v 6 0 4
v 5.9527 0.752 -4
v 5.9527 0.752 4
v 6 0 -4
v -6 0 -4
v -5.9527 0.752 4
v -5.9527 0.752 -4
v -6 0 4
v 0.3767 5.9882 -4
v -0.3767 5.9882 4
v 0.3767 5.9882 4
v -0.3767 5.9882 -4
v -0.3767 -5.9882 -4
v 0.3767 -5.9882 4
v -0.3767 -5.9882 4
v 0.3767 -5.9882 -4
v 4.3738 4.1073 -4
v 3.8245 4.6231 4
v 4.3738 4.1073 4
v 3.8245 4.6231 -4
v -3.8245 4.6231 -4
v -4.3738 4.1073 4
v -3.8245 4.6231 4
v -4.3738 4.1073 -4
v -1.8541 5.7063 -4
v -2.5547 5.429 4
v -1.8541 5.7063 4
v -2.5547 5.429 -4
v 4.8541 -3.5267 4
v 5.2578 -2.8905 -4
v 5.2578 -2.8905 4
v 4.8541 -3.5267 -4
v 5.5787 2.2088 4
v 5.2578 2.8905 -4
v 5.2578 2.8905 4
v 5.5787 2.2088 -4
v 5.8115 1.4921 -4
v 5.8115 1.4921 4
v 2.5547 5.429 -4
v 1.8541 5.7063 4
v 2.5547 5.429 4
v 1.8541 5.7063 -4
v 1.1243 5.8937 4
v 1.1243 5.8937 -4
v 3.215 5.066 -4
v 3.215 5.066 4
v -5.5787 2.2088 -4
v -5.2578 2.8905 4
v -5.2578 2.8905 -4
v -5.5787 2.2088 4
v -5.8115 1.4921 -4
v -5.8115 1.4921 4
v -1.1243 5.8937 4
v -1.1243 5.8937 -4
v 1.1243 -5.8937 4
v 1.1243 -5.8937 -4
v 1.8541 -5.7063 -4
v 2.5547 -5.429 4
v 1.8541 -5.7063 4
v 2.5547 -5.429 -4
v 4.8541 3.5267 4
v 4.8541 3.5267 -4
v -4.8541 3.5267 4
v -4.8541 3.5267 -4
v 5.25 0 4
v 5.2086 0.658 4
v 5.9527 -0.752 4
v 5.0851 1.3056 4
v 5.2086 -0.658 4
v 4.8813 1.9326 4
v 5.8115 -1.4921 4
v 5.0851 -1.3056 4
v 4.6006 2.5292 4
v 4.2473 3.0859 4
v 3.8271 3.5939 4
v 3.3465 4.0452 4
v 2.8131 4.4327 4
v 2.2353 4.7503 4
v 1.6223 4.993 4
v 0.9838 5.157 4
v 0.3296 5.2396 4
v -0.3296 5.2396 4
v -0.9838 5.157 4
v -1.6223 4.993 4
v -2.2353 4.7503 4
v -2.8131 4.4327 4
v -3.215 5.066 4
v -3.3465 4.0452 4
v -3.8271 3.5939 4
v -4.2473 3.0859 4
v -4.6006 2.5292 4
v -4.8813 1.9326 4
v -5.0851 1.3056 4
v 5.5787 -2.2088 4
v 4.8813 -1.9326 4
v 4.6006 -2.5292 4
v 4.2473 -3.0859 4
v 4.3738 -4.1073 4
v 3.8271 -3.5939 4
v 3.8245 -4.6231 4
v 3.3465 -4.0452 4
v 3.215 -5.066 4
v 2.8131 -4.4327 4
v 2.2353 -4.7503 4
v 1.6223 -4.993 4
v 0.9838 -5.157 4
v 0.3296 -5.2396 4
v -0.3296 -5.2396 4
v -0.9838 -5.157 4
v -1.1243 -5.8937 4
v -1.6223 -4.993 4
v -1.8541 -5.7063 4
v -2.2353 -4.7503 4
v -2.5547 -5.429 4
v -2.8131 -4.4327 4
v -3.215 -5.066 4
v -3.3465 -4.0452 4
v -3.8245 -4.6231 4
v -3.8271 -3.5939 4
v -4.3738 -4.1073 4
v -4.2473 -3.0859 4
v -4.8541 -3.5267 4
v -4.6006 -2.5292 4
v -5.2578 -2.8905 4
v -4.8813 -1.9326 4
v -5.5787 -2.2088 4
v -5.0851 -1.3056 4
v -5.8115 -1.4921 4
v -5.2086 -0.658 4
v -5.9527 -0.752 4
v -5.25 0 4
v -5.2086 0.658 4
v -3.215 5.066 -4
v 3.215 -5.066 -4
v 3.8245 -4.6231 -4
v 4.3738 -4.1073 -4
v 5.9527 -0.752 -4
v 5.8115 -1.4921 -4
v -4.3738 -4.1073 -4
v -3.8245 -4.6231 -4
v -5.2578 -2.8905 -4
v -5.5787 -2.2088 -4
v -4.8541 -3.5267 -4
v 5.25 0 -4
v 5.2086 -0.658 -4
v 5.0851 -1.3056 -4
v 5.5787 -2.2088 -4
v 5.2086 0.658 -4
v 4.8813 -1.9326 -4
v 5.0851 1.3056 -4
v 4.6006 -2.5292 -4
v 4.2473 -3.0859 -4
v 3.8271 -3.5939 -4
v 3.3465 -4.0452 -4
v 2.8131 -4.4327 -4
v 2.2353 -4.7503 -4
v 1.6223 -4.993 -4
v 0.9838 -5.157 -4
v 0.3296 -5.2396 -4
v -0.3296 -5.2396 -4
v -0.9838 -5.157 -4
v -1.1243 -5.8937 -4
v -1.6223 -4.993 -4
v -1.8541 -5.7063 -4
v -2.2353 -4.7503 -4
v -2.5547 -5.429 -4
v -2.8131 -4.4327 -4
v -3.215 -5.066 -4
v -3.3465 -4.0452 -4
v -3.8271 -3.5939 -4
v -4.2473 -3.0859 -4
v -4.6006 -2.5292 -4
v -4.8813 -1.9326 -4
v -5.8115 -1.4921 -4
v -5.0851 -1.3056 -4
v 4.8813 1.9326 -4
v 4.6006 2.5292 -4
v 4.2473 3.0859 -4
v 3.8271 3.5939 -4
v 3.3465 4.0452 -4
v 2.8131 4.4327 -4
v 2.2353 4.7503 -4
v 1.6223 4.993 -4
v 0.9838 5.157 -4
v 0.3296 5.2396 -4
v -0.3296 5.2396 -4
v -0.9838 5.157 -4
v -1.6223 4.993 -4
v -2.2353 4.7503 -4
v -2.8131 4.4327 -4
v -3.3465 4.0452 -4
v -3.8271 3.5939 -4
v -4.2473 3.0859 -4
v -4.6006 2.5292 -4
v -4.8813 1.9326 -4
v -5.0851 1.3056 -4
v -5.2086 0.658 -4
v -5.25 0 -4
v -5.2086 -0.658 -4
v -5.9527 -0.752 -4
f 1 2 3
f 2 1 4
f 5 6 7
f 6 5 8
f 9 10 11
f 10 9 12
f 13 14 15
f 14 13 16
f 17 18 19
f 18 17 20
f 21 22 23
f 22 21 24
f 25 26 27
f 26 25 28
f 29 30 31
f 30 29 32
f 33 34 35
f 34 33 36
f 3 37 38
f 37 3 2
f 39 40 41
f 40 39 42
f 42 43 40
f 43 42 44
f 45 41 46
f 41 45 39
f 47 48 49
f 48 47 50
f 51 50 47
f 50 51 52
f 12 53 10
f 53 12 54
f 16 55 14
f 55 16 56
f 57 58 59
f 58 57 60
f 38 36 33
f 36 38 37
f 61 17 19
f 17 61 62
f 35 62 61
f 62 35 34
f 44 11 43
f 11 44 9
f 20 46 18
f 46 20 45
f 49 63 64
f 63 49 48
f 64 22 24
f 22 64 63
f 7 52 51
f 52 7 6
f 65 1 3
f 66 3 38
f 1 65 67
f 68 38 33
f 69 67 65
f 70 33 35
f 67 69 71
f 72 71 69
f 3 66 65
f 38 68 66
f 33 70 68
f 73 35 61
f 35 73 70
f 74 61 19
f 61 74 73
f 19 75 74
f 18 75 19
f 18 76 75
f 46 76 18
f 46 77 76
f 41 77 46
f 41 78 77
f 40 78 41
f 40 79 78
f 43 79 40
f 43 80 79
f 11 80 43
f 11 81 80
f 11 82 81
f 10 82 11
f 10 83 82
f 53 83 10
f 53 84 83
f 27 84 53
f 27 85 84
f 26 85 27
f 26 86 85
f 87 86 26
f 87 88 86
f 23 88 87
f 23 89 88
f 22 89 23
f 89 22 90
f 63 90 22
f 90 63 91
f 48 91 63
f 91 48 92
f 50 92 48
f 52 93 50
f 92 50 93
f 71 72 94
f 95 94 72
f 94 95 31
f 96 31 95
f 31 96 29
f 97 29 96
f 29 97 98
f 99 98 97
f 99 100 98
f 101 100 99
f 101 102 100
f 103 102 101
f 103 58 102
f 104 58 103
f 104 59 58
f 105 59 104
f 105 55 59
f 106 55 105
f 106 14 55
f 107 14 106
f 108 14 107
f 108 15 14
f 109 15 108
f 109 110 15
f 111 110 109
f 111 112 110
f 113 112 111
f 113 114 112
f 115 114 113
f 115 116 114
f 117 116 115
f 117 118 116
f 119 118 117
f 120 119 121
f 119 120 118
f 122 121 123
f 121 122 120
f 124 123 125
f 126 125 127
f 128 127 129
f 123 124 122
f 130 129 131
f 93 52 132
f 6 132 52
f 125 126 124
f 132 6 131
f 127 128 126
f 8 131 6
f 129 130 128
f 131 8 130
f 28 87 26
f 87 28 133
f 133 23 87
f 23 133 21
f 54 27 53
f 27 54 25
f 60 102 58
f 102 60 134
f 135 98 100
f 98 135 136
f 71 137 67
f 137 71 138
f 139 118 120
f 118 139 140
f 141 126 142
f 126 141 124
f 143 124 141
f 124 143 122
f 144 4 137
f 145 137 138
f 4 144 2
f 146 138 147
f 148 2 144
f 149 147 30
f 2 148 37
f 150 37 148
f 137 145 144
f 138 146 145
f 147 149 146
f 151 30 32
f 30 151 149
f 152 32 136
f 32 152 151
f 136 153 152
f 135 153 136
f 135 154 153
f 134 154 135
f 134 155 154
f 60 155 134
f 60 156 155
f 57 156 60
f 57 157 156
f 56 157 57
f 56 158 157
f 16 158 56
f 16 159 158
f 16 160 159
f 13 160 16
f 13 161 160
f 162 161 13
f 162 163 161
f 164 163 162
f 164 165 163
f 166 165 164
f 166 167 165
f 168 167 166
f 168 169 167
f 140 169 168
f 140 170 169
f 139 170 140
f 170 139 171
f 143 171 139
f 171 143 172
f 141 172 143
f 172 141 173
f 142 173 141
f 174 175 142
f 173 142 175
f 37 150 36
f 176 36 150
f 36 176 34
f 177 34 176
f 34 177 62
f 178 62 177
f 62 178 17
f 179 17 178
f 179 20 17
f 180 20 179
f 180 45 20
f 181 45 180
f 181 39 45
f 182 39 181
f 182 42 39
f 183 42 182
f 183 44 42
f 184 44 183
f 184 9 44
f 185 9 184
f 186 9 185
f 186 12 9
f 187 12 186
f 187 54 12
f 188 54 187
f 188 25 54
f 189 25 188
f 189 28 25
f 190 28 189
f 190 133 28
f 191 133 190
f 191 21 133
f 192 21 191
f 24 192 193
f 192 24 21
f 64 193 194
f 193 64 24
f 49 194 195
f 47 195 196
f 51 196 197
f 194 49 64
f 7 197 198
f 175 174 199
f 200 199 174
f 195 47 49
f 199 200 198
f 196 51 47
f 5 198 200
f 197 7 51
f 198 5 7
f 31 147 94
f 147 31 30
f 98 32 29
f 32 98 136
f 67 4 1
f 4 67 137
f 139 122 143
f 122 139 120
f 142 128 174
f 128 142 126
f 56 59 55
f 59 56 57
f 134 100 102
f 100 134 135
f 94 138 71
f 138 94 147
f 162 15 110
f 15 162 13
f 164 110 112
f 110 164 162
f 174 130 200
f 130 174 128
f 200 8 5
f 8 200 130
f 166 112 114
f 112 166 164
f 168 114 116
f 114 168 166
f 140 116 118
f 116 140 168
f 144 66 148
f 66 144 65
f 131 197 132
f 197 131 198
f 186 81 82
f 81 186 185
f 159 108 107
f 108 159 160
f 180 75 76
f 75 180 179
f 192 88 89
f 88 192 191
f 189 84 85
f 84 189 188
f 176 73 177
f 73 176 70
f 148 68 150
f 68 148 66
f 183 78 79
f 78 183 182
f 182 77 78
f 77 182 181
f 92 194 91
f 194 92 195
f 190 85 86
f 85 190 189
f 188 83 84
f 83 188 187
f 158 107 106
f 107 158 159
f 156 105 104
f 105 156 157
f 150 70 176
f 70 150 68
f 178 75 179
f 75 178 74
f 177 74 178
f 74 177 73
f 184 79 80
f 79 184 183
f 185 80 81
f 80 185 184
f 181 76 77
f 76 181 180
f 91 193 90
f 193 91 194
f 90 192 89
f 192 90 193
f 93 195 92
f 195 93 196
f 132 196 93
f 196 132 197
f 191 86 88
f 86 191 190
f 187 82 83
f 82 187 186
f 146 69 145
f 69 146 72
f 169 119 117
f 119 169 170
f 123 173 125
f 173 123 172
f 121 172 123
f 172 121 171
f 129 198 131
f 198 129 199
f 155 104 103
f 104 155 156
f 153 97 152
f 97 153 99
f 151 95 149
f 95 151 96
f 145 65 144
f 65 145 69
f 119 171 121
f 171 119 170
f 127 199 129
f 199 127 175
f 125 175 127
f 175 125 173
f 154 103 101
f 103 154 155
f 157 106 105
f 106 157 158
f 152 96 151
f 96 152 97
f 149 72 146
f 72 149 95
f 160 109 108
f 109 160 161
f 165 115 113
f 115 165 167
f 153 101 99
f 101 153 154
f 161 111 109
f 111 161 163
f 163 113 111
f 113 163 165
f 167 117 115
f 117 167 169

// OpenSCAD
$fn = 50;


difference() {
	union() {
		translate(v = [0, 0, -4.0000000000]) {
			cylinder(h = 8, r = 6.0000000000);
		}
	}
	union() {
		translate(v = [0, 0, -100.0000000000]) {
			cylinder(h = 200, r = 5.2500000000);
		}
	}
}
